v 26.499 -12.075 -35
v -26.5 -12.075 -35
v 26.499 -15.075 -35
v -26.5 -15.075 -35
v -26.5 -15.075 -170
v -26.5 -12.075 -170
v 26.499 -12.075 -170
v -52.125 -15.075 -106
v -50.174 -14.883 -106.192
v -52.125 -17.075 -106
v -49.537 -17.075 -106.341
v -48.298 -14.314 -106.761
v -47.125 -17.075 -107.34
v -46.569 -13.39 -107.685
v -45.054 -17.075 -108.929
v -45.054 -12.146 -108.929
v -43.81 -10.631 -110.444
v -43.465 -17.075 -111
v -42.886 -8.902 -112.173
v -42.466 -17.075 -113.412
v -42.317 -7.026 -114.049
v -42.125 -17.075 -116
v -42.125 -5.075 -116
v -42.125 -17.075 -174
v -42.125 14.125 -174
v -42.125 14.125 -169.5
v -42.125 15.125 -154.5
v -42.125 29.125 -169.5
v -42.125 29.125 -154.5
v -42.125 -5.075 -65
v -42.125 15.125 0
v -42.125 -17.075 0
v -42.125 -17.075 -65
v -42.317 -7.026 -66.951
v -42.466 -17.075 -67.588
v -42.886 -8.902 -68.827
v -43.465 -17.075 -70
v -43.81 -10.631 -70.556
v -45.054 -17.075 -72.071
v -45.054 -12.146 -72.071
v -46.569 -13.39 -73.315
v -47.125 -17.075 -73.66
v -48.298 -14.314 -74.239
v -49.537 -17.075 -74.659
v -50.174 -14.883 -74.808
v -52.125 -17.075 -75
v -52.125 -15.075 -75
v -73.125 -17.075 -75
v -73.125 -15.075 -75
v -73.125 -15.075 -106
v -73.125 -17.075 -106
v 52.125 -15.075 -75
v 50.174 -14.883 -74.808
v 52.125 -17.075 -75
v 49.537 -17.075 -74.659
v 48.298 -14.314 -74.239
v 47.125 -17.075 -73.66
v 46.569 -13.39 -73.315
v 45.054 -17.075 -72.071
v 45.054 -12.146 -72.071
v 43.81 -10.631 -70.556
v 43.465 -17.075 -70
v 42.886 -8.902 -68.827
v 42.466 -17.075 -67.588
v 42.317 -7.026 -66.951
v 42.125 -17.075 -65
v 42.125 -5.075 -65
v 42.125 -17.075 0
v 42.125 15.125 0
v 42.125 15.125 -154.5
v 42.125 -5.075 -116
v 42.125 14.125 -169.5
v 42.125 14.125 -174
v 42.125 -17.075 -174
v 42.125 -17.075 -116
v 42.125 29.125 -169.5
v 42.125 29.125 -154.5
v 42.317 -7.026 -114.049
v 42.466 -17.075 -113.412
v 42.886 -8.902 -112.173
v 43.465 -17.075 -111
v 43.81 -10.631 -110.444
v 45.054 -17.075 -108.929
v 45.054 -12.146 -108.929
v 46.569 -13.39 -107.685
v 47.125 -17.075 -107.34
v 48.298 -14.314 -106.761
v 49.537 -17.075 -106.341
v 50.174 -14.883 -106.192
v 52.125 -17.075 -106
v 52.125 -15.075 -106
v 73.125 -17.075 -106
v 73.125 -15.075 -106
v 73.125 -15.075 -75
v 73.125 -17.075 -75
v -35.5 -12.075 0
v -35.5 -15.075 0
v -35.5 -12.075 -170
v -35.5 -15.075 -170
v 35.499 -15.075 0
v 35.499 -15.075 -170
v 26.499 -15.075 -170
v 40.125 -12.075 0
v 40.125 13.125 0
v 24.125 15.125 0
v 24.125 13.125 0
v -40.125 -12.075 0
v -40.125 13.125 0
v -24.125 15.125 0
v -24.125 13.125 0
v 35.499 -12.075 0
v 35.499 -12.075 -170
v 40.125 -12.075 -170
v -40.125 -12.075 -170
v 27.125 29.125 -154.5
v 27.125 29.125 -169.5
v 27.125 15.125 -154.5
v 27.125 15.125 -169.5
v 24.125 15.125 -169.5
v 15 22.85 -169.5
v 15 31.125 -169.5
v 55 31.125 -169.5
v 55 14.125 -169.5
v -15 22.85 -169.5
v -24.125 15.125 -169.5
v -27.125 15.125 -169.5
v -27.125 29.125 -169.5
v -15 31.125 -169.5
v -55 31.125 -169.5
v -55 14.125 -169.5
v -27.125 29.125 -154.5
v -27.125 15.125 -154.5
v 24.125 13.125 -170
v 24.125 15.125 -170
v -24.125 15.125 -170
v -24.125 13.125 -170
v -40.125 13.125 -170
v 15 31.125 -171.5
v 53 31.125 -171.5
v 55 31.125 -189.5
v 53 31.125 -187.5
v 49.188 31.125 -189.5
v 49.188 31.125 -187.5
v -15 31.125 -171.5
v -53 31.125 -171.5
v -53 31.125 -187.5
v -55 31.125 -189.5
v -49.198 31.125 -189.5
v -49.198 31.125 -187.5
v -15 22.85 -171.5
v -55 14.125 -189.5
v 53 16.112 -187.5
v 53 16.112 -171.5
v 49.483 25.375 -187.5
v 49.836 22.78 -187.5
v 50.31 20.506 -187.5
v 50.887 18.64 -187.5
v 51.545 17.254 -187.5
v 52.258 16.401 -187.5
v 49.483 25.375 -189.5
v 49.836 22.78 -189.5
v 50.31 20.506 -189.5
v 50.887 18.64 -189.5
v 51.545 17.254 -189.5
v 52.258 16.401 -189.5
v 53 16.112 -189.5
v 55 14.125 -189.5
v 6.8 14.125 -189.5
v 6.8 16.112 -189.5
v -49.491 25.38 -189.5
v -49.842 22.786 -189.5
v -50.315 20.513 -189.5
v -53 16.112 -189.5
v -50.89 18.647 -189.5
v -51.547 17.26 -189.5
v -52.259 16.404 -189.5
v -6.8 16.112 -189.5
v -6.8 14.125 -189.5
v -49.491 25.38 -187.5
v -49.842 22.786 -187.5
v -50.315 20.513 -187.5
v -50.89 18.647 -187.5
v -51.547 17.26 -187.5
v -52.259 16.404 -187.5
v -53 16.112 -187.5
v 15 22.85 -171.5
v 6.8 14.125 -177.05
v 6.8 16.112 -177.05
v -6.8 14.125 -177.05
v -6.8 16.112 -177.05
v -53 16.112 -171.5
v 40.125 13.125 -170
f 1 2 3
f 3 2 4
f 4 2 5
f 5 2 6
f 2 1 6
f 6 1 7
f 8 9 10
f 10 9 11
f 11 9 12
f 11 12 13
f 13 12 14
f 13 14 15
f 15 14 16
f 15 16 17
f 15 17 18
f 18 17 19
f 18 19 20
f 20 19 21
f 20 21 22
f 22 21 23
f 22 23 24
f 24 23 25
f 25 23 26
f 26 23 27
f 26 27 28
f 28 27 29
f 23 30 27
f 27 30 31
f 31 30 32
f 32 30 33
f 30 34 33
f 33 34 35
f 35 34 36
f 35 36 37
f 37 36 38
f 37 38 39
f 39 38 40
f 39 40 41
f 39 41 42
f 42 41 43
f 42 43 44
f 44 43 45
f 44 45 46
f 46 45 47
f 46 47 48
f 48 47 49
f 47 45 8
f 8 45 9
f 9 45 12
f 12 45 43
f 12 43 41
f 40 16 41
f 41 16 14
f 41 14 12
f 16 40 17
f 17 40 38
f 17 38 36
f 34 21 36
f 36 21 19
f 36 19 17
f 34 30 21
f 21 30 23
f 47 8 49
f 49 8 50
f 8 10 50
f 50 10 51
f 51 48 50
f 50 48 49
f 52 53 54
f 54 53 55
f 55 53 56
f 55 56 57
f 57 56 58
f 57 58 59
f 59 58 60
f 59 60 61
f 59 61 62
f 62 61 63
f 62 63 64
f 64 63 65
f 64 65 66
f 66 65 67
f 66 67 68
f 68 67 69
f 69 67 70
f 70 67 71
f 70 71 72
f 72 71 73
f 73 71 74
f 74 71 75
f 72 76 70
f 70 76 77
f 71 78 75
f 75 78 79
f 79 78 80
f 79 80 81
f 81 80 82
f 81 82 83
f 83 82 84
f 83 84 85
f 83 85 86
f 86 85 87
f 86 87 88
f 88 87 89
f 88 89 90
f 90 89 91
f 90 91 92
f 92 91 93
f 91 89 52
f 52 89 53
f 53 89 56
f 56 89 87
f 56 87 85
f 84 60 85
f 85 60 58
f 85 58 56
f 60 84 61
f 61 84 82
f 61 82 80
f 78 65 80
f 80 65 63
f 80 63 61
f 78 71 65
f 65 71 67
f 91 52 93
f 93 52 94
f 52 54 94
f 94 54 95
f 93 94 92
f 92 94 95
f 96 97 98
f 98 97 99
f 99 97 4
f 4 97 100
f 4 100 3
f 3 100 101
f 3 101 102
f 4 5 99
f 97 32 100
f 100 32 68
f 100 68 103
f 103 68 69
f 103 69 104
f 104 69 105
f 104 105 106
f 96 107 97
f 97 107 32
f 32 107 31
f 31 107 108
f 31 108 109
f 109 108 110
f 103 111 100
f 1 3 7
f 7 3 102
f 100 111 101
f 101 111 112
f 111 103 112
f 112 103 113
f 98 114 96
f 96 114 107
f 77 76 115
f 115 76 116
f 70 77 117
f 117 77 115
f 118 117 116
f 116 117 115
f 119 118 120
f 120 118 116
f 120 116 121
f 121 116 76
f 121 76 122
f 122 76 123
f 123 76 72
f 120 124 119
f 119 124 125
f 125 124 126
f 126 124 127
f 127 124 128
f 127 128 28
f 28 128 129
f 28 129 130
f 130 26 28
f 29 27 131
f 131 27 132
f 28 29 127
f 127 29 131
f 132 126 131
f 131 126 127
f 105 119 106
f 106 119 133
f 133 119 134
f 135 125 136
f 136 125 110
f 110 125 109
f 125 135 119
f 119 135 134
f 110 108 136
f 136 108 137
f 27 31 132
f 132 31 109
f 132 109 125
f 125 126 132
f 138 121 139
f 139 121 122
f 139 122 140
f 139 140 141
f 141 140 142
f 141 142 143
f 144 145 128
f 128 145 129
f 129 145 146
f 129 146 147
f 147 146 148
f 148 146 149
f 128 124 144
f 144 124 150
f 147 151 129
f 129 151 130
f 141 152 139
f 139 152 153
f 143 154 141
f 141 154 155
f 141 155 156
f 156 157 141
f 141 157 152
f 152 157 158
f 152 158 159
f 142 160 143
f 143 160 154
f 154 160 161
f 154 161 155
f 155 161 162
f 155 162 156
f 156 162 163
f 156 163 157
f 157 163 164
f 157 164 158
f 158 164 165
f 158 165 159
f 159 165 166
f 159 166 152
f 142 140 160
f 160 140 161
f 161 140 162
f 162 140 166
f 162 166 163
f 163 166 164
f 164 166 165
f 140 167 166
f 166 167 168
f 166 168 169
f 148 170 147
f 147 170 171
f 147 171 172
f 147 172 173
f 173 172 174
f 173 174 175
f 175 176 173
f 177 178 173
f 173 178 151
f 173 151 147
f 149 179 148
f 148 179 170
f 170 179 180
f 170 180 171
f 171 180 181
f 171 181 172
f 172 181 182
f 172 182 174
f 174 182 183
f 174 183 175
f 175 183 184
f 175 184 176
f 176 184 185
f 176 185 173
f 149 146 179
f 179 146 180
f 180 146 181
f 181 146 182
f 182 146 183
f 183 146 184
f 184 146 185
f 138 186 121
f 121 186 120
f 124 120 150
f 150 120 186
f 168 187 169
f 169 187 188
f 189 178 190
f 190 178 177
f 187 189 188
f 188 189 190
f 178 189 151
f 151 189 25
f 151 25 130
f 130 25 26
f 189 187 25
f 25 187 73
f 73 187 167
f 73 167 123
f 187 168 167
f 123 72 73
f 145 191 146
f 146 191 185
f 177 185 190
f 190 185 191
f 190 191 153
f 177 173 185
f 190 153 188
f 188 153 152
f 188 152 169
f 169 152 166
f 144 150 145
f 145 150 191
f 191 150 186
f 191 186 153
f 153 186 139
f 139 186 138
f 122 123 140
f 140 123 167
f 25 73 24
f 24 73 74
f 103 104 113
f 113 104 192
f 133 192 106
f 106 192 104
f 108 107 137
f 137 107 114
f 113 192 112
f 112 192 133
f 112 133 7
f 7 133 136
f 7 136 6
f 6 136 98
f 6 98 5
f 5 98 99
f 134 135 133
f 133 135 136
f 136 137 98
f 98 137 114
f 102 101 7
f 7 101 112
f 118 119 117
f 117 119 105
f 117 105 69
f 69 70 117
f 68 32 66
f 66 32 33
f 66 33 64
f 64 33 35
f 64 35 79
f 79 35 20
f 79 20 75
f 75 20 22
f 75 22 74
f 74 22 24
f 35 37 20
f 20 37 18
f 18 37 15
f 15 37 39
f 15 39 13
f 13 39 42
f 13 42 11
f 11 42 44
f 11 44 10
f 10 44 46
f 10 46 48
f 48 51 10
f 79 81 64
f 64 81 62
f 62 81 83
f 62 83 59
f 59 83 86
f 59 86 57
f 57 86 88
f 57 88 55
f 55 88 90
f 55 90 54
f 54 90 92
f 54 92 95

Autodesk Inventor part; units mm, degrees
ref_plane "YZ Plane" through (0, 0, 0) normal (1, 0, 0) x (0, 1, 0)
sketch "スケッチ1" plane through (0, 0, 0) normal (0, 0, 1) x (1, 0, 0)
  line L0 (-42.125, -17.075) -> (42.125, -17.075)
  line L1 (42.125, -17.075) -> (42.125, 15.125)
  line L2 (42.125, 15.125) -> (-42.125, 15.125)
  line L3 (-42.125, 15.125) -> (-42.125, -17.075)
  point P0 (0, 0)
  dimension "d0" = 84.25
  dimension "d1" = 32.2
  dimension "d140" = 15.125
extrude "本体＿側" add sketch "スケッチ1" against normal blind 174
sketch "スケッチ3" plane through (0, 0, 0) normal (0, 0, 1) x (1, 0, 0)
  line L0 (-40.125, -12.075) -> (40.125, -12.075)
  line L1 (40.125, -12.075) -> (40.125, 13.125)
  line L2 (40.125, 13.125) -> (-40.125, 13.125)
  line L3 (-40.125, 13.125) -> (-40.125, -12.075)
  line L4 (42.125, 15.125) -> (-42.125, 15.125) projected
  line L5 (-42.125, -17.075) -> (42.125, -17.075) projected
  line L6 (-42.125, 15.125) -> (-42.125, -17.075) projected
  dimension "d4" = 80.25
  dimension "d125" = 2
  dimension "d138" = 2
  dimension "d139" = 25.2
extrude "本体" cut sketch "スケッチ3" against normal blind 170
sketch "スケッチ6" plane through (0, 0, -174) normal (0, 0, -1) x (-1, 0, 0)
  line L0 (55, 48.1251) -> (-55, 48.1251)
  line L1 (-55, 48.1251) -> (-55, 14.1251)
  line L2 (-55, 14.1251) -> (55, 14.1251)
  line L3 (55, 14.1251) -> (55, 48.1251)
  line L4 (55, 48.1251) -> (-55, 14.1251) construction
  line L5 (-55, 48.1251) -> (55, 14.1251) construction
  line L6 (0, 0) -> (0, 97.4837)
  point P0 (0, 31.1251)
  point P1 (0, 31.1251)
  dimension "d8" = 110
  dimension "d9" = 34
extrude "カメラ" add sketch "スケッチ6" along normal blind 15.5 and the other way blind 4.5
sketch "スケッチ7" plane through (0, 0, -189.5) normal (0, 0, -1) x (-1, 0, 0)
  line L0 (-55, 48.1251) -> (-55, 14.1251) projected
  line L1 (-53, 16.1124) -> (53, 16.1124)
  line L2 (53, 16.1124) -> (53, 46.2624)
  line L3 (53, 46.2624) -> (-53, 46.2624)
  line L4 (-53, 46.2624) -> (-53, 16.1124)
  line L5 (-53, 16.1124) -> (53, 46.2624) construction
  line L6 (53, 16.1124) -> (-53, 46.2624) construction
  point P0 (0, 0)
  point P1 (-55, 31.1251)
  point P2 (-55, 31.1251)
  point P3 (0, 31.1874)
  point P4 (0, 31.1874)
  dimension "d14" = 30.15
  dimension "d15" = 106
extrude "カメラ＿本体" cut sketch "スケッチ7" against normal blind 18
ref_plane "作業平面1" through (-55, 31.1251, -189.5) normal (0, 1, 0) x (1, 0, 0)
ref_plane "作業平面2" through (0, 14.1251, -189.5) normal (-1, 0, 0) x (0, 0, 1)
sketch "スケッチ10" plane through (-53, 16.1124, -189.5) normal (0, 1, 0) x (1, 0, 0)
  line L0 (59.8, -12.45) -> (46.2, -12.45)
  line L1 (46.2, -12.45) -> (46.2, 0)
  line L2 (46.2, 0) -> (59.8, 0)
  line L3 (59.8, 0) -> (59.8, -12.45)
  line L4 (59.8, -12.45) -> (46.2, 0) construction
  line L5 (46.2, -12.45) -> (59.8, 0) construction
  line L6 (108, -20) -> (-2, -20)
  line L7 (53, -20) -> (53, -4.9349)
  line L8 (53, -227.4) -> (53, 37.9)
  line L9 (0, 0) -> (106, 0)
  line L10 (0, 0) -> (106, 0)
  line L11 (0, 0) -> (0, -18)
  line L12 (0, -18) -> (106, -18)
  line L13 (106, 0) -> (106, -18)
  point P0 (53, -189.5)
  point P1 (53, -6.225)
  point P2 (53, 0)
  dimension "d22" = 12.45
  dimension "d23" = 13.6
sketch "スケッチ11" plane through (0, 0, -169.5) normal (0, 0, 1) x (1, 0, 0)
  line L0 (-15, 22.8501) -> (15, 22.8501)
  line L1 (15, 22.8501) -> (15, 39.4001)
  line L2 (15, 39.4001) -> (-15, 39.4001)
  line L3 (-15, 39.4001) -> (-15, 22.8501)
  line L4 (-53, 31.1251) -> (53, 31.1251)
  line L5 (-15, 22.8501) -> (15, 39.4001) construction
  line L6 (15, 22.8501) -> (-15, 39.4001) construction
  line L7 (0, -24.4525) -> (0, 47.8399)
  point P0 (0, 0)
  point P1 (0, 31.1251)
  point P2 (0, 31.1251)
  dimension "d26" = 30
  dimension "d27" = 16.55
extrude "突起" cut sketch "スケッチ10" against normal blind 2 contours L0 L7 L8 L2 L3 | L0 L1 L2 L8 L7
extrude "コード" cut sketch "スケッチ11" against normal blind 2
ref_plane "作業平面6" through (53, 16.1124, -189.5) normal (0, 0, 1) x (1, 0, 0)
sketch "スケッチ18" plane through (53, 16.1124, -189.5) normal (0, 0, 1) x (1, 0, 0)
  line L0 (0, 0) -> (0, 30.15) projected
  ellipse E0 centre (0, 15.0748) end of major axis (0, 0) minor radius 3.8117 (0, 30.1495) -> (0, 0) ccw
  line L1 (0, 30.15) -> (-106, 30.15) projected
  line L2 (-106, 0) -> (0, 0) projected
  line L3 (0, 30.15) -> (0, 0)
  point P0 (-53, -16.1124)
extrude "半円１" add sketch "スケッチ18" along normal blind 2
sketch "スケッチ19" plane through (53, 16.1124, -189.5) normal (0, 0, 1) x (1, 0, 0)
  line L0 (-106, 30.15) -> (-106, 0) projected
  ellipse E0 centre (-106.01, 15.0751) end of major axis (-106.0154, 30.1501) minor radius 3.8117 (-106.01, 0) -> (-106.01, 30.1501) ccw
  line L1 (-38, 6.7377) -> (-38, 23.2877) projected
  line L2 (-38, 23.2877) -> (-68, 23.2877) projected
  line L3 (-68, 23.2877) -> (-68, 6.7377) projected
  line L4 (-68, 6.7377) -> (-38, 6.7377) projected
  line L5 (-106, 0) -> (0, 0) projected
  line L6 (-106, 30.15) -> (-106, 0) projected
  line L7 (0, 30.15) -> (-106, 30.15) projected
  line L8 (0, 0) -> (0, 30.15) projected
  line L9 (-106, 0) -> (0, 0) projected
  line L10 (0, 30.15) -> (-106, 30.15) projected
  line L11 (-106, 0) -> (-106, 30.15)
  point P0 (-53, -16.1124)
extrude "半円2" add sketch "スケッチ19" along normal blind 2 contours E0 L0
sketch "スケッチ16" plane through (-55, 31.1251, -189.5) normal (0, 1, 0) x (1, 0, 0)
  line L0 (110, -20) -> (110, 0) projected
  line L1 (0, -20) -> (0, 0) projected
  line L2 (110, 0) -> (0, 0)
  line L3 (0, 0) -> (0, -20)
  line L4 (0, -20) -> (110, -20)
  line L5 (110, -20) -> (110, 0)
  point P0 (55, -189.5)
extrude "上半分消去" cut sketch "スケッチ16" along normal blind 17
sketch "スケッチ20" plane through (-42.125, 15.125, 0) normal (0, 1, 0) x (1, 0, 0)
  line L0 (18, 0) -> (66.25, 0)
  line L1 (66.25, 0) -> (66.25, 170)
  line L2 (66.25, 170) -> (18, 170)
  line L3 (18, 170) -> (18, 0)
  line L4 (18, 0) -> (66.25, 170) construction
  line L5 (66.25, 0) -> (18, 170) construction
  line L6 (84.25, 0) -> (0, 0) projected
  line L7 (42.125, -37.9) -> (42.125, 227.4) projected
  point P0 (42.125, 85)
  point P1 (42.125, 0)
  point P2 (42.125, 85)
  dimension "d47" = 170
  dimension "d91" = 18
extrude "ボタン部" cut sketch "スケッチ20" against normal blind 2
ref_plane "作業平面7" through (-42.125, 15.125, 0) normal (-1, 0, 0) x (0, 0, -1)
sketch "スケッチ22" plane through (-42.125, 15.125, 0) normal (-1, 0, 0) x (0, 0, -1)
  line L0 (0, 0) -> (174, 0) projected
  line L1 (169.5, 0) -> (154.5, 0)
  line L2 (154.5, 0) -> (154.5, -14)
  line L3 (154.5, -14) -> (169.5, -14)
  line L4 (169.5, -14) -> (169.5, 0)
  point P0 (0, 15.125)
  point P1 (169.5, 0.9999)
  dimension "d51" = 15
  dimension "d52" = 14
extrude "支え１" add sketch "スケッチ22" against normal blind 15
ref_plane "作業平面8" through (42.125, 15.125, 0) normal (-1, 0, 0) x (0, 0, -1)
sketch "スケッチ23" plane through (42.125, 15.125, 0) normal (-1, 0, 0) x (0, 0, -1)
  line L0 (0, 0) -> (174, 0) projected
  line L1 (154.5, -14) -> (154.5, 0) projected
  line L2 (169.5, 0) -> (154.5, 0)
  line L3 (154.5, 0) -> (154.5, -14)
  line L4 (154.5, -14) -> (169.5, -14)
  line L5 (169.5, -14) -> (169.5, 0)
  point P0 (0, 15.125)
  dimension "d55" = 15
  dimension "d56" = 14
extrude "支え２" add sketch "スケッチ23" along normal blind 15
ref_plane "作業平面9" through (42.125, -17.075, 0) normal (0, 0, 1) x (0, 1, 0)
sketch "スケッチ24" plane through (42.125, -17.075, 0) normal (0, 0, 1) x (0, 1, 0)
  line L0 (0, 84.25) -> (31.2001, 84.25) projected
  line L1 (0, 0) -> (0, 84.25) projected
  line L2 (28.25, 84.25) -> (0, 84.25)
  line L3 (0, 84.25) -> (0, 0)
  line L4 (0, 0) -> (28.25, 0)
  line L5 (28.25, 0) -> (28.25, 84.25)
  point P0 (17.075, 42.125)
extrude "削除予定" [suppressed]
sketch "スケッチ43" plane through (0, 0, 0) normal (0, 0, 1) x (1, 0, 0)
  line L0 (40.125, -12.075) -> (-40.125, -12.075) projected
  line L1 (0, -12.075) -> (31, -12.075)
  line L2 (26.4993, -15.075) -> (26.4993, -12.075)
  line L3 (26.4993, -12.075) -> (35.4993, -12.075)
  line L4 (35.4993, -12.075) -> (35.4993, -15.075)
  line L5 (35.4993, -15.075) -> (26.4993, -15.075)
  line L6 (26.4993, -15.075) -> (35.4993, -12.075) construction
  line L7 (26.4993, -12.075) -> (35.4993, -15.075) construction
  line L8 (30.9993, -12.075) -> (30.9993, -17.075)
  line L9 (-42.125, -17.075) -> (42.125, -17.075) projected
  point P0 (0, 0)
  point P1 (31, -12.125)
  dimension "d127" = 31
  dimension "d128" = 3
  dimension "d130" = 9
extrude "ネジ山溝１" cut sketch "スケッチ43" against normal blind 170
sketch "スケッチ44" plane through (0, 0, 0) normal (0, 0, 1) x (1, 0, 0)
  line L0 (26.4993, -12.075) -> (-40.125, -12.075) projected
  line L1 (0, -12.075) -> (-31, -12.075)
  line L2 (0, -30.115) -> (0, 61.1651) projected
  line L3 (-26.5, -15.075) -> (-26.5, -12.075)
  line L4 (-26.5, -12.075) -> (-35.5, -12.075)
  line L5 (-35.5, -12.075) -> (-35.5, -15.075)
  line L6 (-35.5, -15.075) -> (-26.5, -15.075)
  line L7 (-26.5, -15.075) -> (-35.5, -12.075) construction
  line L8 (-26.5, -12.075) -> (-35.5, -15.075) construction
  line L9 (-42.125, -17.075) -> (42.125, -17.075) projected
  line L10 (-31, -17.075) -> (-31, -12.075)
  point P0 (0, 0)
  point P1 (-31, -13.575)
  point P2 (-31, -13.575)
  dimension "d133" = 31
  dimension "d134" = 9
  dimension "d135" = 3
extrude "ネジ山溝２" cut sketch "スケッチ44" against normal blind 170 contours L3 L6 L10 L0 | L10 L6 L5 L0
sketch "スケッチ47" plane through (42.125, -17.075, 0) normal (1, 0, 0) x (0, 0, -1)
  line L0 (0, 0) -> (174, 0) projected
  line L1 (75, 2) -> (106, 2)
  line L2 (106, 2) -> (106, 0)
  line L3 (106, 0) -> (75, 0)
  line L4 (75, 0) -> (75, 2)
  line L5 (174, 31.2001) -> (174, 0) projected
  point P0 (0, 17.075)
  dimension "d141" = 68
  dimension "d142" = 31
  dimension "d145" = 2
extrude "押し出し28" add sketch "スケッチ47" along normal blind 31
sketch "スケッチ48" plane through (42.125, -15.075, -75) normal (0, 1, 0) x (1, 0, 0)
  point P0 (-42.125, -75)
fillet "フィレット1" radius 10 1 edges at (42.125, -15.075, -90.5)
fillet "フィレット2" radius 10 1 edges at (42.125, -16.075, -106)
fillet "フィレット3" radius 10 1 edges at (42.125, -16.075, -75)
sketch "スケッチ49" plane through (-42.125, -17.075, 0) normal (-1, 0, 0) x (0, 0, 1)
  line L0 (0, 0) -> (-174, 0) projected
  line L1 (-106, 0) -> (-75, 0)
  line L2 (-75, 0) -> (-75, 2)
  line L3 (-75, 2) -> (-106, 2)
  line L4 (-106, 2) -> (-106, 0)
  line L5 (-174, 0) -> (-174, 31.2001) projected
  point P0 (0, 17.075)
  dimension "d149" = 68
  dimension "d150" = 31
  dimension "d151" = 2
extrude "押し出し29" add sketch "スケッチ49" along normal blind 31
fillet "フィレット4" radius 10 1 edges at (-42.125, -15.075, -90.5)
fillet "フィレット5" radius 10 1 edges at (-42.125, -16.075, -75)
fillet "フィレット6" radius 10 1 edges at (-42.125, -16.075, -106)
sketch "スケッチ56" plane through (0, 0, 0) normal (0, 0, 1) x (1, 0, 0)
  line L0 (26.4993, -12.075) -> (-26.5, -12.075) projected
  line L1 (35.4993, -15.075) -> (26.4993, -15.075) projected
  line L2 (-26.5, -12.075) -> (26.4993, -12.075)
  line L3 (26.4993, -12.075) -> (26.4993, -15.075)
  line L4 (26.4993, -15.075) -> (-26.5, -15.075)
  line L5 (-26.5, -15.075) -> (-26.5, -12.075)
  point P0 (0, 0)
extrude "キャスターネジ溝" cut sketch "スケッチ56" against normal blind 35
properties part number "battery_case_1"
